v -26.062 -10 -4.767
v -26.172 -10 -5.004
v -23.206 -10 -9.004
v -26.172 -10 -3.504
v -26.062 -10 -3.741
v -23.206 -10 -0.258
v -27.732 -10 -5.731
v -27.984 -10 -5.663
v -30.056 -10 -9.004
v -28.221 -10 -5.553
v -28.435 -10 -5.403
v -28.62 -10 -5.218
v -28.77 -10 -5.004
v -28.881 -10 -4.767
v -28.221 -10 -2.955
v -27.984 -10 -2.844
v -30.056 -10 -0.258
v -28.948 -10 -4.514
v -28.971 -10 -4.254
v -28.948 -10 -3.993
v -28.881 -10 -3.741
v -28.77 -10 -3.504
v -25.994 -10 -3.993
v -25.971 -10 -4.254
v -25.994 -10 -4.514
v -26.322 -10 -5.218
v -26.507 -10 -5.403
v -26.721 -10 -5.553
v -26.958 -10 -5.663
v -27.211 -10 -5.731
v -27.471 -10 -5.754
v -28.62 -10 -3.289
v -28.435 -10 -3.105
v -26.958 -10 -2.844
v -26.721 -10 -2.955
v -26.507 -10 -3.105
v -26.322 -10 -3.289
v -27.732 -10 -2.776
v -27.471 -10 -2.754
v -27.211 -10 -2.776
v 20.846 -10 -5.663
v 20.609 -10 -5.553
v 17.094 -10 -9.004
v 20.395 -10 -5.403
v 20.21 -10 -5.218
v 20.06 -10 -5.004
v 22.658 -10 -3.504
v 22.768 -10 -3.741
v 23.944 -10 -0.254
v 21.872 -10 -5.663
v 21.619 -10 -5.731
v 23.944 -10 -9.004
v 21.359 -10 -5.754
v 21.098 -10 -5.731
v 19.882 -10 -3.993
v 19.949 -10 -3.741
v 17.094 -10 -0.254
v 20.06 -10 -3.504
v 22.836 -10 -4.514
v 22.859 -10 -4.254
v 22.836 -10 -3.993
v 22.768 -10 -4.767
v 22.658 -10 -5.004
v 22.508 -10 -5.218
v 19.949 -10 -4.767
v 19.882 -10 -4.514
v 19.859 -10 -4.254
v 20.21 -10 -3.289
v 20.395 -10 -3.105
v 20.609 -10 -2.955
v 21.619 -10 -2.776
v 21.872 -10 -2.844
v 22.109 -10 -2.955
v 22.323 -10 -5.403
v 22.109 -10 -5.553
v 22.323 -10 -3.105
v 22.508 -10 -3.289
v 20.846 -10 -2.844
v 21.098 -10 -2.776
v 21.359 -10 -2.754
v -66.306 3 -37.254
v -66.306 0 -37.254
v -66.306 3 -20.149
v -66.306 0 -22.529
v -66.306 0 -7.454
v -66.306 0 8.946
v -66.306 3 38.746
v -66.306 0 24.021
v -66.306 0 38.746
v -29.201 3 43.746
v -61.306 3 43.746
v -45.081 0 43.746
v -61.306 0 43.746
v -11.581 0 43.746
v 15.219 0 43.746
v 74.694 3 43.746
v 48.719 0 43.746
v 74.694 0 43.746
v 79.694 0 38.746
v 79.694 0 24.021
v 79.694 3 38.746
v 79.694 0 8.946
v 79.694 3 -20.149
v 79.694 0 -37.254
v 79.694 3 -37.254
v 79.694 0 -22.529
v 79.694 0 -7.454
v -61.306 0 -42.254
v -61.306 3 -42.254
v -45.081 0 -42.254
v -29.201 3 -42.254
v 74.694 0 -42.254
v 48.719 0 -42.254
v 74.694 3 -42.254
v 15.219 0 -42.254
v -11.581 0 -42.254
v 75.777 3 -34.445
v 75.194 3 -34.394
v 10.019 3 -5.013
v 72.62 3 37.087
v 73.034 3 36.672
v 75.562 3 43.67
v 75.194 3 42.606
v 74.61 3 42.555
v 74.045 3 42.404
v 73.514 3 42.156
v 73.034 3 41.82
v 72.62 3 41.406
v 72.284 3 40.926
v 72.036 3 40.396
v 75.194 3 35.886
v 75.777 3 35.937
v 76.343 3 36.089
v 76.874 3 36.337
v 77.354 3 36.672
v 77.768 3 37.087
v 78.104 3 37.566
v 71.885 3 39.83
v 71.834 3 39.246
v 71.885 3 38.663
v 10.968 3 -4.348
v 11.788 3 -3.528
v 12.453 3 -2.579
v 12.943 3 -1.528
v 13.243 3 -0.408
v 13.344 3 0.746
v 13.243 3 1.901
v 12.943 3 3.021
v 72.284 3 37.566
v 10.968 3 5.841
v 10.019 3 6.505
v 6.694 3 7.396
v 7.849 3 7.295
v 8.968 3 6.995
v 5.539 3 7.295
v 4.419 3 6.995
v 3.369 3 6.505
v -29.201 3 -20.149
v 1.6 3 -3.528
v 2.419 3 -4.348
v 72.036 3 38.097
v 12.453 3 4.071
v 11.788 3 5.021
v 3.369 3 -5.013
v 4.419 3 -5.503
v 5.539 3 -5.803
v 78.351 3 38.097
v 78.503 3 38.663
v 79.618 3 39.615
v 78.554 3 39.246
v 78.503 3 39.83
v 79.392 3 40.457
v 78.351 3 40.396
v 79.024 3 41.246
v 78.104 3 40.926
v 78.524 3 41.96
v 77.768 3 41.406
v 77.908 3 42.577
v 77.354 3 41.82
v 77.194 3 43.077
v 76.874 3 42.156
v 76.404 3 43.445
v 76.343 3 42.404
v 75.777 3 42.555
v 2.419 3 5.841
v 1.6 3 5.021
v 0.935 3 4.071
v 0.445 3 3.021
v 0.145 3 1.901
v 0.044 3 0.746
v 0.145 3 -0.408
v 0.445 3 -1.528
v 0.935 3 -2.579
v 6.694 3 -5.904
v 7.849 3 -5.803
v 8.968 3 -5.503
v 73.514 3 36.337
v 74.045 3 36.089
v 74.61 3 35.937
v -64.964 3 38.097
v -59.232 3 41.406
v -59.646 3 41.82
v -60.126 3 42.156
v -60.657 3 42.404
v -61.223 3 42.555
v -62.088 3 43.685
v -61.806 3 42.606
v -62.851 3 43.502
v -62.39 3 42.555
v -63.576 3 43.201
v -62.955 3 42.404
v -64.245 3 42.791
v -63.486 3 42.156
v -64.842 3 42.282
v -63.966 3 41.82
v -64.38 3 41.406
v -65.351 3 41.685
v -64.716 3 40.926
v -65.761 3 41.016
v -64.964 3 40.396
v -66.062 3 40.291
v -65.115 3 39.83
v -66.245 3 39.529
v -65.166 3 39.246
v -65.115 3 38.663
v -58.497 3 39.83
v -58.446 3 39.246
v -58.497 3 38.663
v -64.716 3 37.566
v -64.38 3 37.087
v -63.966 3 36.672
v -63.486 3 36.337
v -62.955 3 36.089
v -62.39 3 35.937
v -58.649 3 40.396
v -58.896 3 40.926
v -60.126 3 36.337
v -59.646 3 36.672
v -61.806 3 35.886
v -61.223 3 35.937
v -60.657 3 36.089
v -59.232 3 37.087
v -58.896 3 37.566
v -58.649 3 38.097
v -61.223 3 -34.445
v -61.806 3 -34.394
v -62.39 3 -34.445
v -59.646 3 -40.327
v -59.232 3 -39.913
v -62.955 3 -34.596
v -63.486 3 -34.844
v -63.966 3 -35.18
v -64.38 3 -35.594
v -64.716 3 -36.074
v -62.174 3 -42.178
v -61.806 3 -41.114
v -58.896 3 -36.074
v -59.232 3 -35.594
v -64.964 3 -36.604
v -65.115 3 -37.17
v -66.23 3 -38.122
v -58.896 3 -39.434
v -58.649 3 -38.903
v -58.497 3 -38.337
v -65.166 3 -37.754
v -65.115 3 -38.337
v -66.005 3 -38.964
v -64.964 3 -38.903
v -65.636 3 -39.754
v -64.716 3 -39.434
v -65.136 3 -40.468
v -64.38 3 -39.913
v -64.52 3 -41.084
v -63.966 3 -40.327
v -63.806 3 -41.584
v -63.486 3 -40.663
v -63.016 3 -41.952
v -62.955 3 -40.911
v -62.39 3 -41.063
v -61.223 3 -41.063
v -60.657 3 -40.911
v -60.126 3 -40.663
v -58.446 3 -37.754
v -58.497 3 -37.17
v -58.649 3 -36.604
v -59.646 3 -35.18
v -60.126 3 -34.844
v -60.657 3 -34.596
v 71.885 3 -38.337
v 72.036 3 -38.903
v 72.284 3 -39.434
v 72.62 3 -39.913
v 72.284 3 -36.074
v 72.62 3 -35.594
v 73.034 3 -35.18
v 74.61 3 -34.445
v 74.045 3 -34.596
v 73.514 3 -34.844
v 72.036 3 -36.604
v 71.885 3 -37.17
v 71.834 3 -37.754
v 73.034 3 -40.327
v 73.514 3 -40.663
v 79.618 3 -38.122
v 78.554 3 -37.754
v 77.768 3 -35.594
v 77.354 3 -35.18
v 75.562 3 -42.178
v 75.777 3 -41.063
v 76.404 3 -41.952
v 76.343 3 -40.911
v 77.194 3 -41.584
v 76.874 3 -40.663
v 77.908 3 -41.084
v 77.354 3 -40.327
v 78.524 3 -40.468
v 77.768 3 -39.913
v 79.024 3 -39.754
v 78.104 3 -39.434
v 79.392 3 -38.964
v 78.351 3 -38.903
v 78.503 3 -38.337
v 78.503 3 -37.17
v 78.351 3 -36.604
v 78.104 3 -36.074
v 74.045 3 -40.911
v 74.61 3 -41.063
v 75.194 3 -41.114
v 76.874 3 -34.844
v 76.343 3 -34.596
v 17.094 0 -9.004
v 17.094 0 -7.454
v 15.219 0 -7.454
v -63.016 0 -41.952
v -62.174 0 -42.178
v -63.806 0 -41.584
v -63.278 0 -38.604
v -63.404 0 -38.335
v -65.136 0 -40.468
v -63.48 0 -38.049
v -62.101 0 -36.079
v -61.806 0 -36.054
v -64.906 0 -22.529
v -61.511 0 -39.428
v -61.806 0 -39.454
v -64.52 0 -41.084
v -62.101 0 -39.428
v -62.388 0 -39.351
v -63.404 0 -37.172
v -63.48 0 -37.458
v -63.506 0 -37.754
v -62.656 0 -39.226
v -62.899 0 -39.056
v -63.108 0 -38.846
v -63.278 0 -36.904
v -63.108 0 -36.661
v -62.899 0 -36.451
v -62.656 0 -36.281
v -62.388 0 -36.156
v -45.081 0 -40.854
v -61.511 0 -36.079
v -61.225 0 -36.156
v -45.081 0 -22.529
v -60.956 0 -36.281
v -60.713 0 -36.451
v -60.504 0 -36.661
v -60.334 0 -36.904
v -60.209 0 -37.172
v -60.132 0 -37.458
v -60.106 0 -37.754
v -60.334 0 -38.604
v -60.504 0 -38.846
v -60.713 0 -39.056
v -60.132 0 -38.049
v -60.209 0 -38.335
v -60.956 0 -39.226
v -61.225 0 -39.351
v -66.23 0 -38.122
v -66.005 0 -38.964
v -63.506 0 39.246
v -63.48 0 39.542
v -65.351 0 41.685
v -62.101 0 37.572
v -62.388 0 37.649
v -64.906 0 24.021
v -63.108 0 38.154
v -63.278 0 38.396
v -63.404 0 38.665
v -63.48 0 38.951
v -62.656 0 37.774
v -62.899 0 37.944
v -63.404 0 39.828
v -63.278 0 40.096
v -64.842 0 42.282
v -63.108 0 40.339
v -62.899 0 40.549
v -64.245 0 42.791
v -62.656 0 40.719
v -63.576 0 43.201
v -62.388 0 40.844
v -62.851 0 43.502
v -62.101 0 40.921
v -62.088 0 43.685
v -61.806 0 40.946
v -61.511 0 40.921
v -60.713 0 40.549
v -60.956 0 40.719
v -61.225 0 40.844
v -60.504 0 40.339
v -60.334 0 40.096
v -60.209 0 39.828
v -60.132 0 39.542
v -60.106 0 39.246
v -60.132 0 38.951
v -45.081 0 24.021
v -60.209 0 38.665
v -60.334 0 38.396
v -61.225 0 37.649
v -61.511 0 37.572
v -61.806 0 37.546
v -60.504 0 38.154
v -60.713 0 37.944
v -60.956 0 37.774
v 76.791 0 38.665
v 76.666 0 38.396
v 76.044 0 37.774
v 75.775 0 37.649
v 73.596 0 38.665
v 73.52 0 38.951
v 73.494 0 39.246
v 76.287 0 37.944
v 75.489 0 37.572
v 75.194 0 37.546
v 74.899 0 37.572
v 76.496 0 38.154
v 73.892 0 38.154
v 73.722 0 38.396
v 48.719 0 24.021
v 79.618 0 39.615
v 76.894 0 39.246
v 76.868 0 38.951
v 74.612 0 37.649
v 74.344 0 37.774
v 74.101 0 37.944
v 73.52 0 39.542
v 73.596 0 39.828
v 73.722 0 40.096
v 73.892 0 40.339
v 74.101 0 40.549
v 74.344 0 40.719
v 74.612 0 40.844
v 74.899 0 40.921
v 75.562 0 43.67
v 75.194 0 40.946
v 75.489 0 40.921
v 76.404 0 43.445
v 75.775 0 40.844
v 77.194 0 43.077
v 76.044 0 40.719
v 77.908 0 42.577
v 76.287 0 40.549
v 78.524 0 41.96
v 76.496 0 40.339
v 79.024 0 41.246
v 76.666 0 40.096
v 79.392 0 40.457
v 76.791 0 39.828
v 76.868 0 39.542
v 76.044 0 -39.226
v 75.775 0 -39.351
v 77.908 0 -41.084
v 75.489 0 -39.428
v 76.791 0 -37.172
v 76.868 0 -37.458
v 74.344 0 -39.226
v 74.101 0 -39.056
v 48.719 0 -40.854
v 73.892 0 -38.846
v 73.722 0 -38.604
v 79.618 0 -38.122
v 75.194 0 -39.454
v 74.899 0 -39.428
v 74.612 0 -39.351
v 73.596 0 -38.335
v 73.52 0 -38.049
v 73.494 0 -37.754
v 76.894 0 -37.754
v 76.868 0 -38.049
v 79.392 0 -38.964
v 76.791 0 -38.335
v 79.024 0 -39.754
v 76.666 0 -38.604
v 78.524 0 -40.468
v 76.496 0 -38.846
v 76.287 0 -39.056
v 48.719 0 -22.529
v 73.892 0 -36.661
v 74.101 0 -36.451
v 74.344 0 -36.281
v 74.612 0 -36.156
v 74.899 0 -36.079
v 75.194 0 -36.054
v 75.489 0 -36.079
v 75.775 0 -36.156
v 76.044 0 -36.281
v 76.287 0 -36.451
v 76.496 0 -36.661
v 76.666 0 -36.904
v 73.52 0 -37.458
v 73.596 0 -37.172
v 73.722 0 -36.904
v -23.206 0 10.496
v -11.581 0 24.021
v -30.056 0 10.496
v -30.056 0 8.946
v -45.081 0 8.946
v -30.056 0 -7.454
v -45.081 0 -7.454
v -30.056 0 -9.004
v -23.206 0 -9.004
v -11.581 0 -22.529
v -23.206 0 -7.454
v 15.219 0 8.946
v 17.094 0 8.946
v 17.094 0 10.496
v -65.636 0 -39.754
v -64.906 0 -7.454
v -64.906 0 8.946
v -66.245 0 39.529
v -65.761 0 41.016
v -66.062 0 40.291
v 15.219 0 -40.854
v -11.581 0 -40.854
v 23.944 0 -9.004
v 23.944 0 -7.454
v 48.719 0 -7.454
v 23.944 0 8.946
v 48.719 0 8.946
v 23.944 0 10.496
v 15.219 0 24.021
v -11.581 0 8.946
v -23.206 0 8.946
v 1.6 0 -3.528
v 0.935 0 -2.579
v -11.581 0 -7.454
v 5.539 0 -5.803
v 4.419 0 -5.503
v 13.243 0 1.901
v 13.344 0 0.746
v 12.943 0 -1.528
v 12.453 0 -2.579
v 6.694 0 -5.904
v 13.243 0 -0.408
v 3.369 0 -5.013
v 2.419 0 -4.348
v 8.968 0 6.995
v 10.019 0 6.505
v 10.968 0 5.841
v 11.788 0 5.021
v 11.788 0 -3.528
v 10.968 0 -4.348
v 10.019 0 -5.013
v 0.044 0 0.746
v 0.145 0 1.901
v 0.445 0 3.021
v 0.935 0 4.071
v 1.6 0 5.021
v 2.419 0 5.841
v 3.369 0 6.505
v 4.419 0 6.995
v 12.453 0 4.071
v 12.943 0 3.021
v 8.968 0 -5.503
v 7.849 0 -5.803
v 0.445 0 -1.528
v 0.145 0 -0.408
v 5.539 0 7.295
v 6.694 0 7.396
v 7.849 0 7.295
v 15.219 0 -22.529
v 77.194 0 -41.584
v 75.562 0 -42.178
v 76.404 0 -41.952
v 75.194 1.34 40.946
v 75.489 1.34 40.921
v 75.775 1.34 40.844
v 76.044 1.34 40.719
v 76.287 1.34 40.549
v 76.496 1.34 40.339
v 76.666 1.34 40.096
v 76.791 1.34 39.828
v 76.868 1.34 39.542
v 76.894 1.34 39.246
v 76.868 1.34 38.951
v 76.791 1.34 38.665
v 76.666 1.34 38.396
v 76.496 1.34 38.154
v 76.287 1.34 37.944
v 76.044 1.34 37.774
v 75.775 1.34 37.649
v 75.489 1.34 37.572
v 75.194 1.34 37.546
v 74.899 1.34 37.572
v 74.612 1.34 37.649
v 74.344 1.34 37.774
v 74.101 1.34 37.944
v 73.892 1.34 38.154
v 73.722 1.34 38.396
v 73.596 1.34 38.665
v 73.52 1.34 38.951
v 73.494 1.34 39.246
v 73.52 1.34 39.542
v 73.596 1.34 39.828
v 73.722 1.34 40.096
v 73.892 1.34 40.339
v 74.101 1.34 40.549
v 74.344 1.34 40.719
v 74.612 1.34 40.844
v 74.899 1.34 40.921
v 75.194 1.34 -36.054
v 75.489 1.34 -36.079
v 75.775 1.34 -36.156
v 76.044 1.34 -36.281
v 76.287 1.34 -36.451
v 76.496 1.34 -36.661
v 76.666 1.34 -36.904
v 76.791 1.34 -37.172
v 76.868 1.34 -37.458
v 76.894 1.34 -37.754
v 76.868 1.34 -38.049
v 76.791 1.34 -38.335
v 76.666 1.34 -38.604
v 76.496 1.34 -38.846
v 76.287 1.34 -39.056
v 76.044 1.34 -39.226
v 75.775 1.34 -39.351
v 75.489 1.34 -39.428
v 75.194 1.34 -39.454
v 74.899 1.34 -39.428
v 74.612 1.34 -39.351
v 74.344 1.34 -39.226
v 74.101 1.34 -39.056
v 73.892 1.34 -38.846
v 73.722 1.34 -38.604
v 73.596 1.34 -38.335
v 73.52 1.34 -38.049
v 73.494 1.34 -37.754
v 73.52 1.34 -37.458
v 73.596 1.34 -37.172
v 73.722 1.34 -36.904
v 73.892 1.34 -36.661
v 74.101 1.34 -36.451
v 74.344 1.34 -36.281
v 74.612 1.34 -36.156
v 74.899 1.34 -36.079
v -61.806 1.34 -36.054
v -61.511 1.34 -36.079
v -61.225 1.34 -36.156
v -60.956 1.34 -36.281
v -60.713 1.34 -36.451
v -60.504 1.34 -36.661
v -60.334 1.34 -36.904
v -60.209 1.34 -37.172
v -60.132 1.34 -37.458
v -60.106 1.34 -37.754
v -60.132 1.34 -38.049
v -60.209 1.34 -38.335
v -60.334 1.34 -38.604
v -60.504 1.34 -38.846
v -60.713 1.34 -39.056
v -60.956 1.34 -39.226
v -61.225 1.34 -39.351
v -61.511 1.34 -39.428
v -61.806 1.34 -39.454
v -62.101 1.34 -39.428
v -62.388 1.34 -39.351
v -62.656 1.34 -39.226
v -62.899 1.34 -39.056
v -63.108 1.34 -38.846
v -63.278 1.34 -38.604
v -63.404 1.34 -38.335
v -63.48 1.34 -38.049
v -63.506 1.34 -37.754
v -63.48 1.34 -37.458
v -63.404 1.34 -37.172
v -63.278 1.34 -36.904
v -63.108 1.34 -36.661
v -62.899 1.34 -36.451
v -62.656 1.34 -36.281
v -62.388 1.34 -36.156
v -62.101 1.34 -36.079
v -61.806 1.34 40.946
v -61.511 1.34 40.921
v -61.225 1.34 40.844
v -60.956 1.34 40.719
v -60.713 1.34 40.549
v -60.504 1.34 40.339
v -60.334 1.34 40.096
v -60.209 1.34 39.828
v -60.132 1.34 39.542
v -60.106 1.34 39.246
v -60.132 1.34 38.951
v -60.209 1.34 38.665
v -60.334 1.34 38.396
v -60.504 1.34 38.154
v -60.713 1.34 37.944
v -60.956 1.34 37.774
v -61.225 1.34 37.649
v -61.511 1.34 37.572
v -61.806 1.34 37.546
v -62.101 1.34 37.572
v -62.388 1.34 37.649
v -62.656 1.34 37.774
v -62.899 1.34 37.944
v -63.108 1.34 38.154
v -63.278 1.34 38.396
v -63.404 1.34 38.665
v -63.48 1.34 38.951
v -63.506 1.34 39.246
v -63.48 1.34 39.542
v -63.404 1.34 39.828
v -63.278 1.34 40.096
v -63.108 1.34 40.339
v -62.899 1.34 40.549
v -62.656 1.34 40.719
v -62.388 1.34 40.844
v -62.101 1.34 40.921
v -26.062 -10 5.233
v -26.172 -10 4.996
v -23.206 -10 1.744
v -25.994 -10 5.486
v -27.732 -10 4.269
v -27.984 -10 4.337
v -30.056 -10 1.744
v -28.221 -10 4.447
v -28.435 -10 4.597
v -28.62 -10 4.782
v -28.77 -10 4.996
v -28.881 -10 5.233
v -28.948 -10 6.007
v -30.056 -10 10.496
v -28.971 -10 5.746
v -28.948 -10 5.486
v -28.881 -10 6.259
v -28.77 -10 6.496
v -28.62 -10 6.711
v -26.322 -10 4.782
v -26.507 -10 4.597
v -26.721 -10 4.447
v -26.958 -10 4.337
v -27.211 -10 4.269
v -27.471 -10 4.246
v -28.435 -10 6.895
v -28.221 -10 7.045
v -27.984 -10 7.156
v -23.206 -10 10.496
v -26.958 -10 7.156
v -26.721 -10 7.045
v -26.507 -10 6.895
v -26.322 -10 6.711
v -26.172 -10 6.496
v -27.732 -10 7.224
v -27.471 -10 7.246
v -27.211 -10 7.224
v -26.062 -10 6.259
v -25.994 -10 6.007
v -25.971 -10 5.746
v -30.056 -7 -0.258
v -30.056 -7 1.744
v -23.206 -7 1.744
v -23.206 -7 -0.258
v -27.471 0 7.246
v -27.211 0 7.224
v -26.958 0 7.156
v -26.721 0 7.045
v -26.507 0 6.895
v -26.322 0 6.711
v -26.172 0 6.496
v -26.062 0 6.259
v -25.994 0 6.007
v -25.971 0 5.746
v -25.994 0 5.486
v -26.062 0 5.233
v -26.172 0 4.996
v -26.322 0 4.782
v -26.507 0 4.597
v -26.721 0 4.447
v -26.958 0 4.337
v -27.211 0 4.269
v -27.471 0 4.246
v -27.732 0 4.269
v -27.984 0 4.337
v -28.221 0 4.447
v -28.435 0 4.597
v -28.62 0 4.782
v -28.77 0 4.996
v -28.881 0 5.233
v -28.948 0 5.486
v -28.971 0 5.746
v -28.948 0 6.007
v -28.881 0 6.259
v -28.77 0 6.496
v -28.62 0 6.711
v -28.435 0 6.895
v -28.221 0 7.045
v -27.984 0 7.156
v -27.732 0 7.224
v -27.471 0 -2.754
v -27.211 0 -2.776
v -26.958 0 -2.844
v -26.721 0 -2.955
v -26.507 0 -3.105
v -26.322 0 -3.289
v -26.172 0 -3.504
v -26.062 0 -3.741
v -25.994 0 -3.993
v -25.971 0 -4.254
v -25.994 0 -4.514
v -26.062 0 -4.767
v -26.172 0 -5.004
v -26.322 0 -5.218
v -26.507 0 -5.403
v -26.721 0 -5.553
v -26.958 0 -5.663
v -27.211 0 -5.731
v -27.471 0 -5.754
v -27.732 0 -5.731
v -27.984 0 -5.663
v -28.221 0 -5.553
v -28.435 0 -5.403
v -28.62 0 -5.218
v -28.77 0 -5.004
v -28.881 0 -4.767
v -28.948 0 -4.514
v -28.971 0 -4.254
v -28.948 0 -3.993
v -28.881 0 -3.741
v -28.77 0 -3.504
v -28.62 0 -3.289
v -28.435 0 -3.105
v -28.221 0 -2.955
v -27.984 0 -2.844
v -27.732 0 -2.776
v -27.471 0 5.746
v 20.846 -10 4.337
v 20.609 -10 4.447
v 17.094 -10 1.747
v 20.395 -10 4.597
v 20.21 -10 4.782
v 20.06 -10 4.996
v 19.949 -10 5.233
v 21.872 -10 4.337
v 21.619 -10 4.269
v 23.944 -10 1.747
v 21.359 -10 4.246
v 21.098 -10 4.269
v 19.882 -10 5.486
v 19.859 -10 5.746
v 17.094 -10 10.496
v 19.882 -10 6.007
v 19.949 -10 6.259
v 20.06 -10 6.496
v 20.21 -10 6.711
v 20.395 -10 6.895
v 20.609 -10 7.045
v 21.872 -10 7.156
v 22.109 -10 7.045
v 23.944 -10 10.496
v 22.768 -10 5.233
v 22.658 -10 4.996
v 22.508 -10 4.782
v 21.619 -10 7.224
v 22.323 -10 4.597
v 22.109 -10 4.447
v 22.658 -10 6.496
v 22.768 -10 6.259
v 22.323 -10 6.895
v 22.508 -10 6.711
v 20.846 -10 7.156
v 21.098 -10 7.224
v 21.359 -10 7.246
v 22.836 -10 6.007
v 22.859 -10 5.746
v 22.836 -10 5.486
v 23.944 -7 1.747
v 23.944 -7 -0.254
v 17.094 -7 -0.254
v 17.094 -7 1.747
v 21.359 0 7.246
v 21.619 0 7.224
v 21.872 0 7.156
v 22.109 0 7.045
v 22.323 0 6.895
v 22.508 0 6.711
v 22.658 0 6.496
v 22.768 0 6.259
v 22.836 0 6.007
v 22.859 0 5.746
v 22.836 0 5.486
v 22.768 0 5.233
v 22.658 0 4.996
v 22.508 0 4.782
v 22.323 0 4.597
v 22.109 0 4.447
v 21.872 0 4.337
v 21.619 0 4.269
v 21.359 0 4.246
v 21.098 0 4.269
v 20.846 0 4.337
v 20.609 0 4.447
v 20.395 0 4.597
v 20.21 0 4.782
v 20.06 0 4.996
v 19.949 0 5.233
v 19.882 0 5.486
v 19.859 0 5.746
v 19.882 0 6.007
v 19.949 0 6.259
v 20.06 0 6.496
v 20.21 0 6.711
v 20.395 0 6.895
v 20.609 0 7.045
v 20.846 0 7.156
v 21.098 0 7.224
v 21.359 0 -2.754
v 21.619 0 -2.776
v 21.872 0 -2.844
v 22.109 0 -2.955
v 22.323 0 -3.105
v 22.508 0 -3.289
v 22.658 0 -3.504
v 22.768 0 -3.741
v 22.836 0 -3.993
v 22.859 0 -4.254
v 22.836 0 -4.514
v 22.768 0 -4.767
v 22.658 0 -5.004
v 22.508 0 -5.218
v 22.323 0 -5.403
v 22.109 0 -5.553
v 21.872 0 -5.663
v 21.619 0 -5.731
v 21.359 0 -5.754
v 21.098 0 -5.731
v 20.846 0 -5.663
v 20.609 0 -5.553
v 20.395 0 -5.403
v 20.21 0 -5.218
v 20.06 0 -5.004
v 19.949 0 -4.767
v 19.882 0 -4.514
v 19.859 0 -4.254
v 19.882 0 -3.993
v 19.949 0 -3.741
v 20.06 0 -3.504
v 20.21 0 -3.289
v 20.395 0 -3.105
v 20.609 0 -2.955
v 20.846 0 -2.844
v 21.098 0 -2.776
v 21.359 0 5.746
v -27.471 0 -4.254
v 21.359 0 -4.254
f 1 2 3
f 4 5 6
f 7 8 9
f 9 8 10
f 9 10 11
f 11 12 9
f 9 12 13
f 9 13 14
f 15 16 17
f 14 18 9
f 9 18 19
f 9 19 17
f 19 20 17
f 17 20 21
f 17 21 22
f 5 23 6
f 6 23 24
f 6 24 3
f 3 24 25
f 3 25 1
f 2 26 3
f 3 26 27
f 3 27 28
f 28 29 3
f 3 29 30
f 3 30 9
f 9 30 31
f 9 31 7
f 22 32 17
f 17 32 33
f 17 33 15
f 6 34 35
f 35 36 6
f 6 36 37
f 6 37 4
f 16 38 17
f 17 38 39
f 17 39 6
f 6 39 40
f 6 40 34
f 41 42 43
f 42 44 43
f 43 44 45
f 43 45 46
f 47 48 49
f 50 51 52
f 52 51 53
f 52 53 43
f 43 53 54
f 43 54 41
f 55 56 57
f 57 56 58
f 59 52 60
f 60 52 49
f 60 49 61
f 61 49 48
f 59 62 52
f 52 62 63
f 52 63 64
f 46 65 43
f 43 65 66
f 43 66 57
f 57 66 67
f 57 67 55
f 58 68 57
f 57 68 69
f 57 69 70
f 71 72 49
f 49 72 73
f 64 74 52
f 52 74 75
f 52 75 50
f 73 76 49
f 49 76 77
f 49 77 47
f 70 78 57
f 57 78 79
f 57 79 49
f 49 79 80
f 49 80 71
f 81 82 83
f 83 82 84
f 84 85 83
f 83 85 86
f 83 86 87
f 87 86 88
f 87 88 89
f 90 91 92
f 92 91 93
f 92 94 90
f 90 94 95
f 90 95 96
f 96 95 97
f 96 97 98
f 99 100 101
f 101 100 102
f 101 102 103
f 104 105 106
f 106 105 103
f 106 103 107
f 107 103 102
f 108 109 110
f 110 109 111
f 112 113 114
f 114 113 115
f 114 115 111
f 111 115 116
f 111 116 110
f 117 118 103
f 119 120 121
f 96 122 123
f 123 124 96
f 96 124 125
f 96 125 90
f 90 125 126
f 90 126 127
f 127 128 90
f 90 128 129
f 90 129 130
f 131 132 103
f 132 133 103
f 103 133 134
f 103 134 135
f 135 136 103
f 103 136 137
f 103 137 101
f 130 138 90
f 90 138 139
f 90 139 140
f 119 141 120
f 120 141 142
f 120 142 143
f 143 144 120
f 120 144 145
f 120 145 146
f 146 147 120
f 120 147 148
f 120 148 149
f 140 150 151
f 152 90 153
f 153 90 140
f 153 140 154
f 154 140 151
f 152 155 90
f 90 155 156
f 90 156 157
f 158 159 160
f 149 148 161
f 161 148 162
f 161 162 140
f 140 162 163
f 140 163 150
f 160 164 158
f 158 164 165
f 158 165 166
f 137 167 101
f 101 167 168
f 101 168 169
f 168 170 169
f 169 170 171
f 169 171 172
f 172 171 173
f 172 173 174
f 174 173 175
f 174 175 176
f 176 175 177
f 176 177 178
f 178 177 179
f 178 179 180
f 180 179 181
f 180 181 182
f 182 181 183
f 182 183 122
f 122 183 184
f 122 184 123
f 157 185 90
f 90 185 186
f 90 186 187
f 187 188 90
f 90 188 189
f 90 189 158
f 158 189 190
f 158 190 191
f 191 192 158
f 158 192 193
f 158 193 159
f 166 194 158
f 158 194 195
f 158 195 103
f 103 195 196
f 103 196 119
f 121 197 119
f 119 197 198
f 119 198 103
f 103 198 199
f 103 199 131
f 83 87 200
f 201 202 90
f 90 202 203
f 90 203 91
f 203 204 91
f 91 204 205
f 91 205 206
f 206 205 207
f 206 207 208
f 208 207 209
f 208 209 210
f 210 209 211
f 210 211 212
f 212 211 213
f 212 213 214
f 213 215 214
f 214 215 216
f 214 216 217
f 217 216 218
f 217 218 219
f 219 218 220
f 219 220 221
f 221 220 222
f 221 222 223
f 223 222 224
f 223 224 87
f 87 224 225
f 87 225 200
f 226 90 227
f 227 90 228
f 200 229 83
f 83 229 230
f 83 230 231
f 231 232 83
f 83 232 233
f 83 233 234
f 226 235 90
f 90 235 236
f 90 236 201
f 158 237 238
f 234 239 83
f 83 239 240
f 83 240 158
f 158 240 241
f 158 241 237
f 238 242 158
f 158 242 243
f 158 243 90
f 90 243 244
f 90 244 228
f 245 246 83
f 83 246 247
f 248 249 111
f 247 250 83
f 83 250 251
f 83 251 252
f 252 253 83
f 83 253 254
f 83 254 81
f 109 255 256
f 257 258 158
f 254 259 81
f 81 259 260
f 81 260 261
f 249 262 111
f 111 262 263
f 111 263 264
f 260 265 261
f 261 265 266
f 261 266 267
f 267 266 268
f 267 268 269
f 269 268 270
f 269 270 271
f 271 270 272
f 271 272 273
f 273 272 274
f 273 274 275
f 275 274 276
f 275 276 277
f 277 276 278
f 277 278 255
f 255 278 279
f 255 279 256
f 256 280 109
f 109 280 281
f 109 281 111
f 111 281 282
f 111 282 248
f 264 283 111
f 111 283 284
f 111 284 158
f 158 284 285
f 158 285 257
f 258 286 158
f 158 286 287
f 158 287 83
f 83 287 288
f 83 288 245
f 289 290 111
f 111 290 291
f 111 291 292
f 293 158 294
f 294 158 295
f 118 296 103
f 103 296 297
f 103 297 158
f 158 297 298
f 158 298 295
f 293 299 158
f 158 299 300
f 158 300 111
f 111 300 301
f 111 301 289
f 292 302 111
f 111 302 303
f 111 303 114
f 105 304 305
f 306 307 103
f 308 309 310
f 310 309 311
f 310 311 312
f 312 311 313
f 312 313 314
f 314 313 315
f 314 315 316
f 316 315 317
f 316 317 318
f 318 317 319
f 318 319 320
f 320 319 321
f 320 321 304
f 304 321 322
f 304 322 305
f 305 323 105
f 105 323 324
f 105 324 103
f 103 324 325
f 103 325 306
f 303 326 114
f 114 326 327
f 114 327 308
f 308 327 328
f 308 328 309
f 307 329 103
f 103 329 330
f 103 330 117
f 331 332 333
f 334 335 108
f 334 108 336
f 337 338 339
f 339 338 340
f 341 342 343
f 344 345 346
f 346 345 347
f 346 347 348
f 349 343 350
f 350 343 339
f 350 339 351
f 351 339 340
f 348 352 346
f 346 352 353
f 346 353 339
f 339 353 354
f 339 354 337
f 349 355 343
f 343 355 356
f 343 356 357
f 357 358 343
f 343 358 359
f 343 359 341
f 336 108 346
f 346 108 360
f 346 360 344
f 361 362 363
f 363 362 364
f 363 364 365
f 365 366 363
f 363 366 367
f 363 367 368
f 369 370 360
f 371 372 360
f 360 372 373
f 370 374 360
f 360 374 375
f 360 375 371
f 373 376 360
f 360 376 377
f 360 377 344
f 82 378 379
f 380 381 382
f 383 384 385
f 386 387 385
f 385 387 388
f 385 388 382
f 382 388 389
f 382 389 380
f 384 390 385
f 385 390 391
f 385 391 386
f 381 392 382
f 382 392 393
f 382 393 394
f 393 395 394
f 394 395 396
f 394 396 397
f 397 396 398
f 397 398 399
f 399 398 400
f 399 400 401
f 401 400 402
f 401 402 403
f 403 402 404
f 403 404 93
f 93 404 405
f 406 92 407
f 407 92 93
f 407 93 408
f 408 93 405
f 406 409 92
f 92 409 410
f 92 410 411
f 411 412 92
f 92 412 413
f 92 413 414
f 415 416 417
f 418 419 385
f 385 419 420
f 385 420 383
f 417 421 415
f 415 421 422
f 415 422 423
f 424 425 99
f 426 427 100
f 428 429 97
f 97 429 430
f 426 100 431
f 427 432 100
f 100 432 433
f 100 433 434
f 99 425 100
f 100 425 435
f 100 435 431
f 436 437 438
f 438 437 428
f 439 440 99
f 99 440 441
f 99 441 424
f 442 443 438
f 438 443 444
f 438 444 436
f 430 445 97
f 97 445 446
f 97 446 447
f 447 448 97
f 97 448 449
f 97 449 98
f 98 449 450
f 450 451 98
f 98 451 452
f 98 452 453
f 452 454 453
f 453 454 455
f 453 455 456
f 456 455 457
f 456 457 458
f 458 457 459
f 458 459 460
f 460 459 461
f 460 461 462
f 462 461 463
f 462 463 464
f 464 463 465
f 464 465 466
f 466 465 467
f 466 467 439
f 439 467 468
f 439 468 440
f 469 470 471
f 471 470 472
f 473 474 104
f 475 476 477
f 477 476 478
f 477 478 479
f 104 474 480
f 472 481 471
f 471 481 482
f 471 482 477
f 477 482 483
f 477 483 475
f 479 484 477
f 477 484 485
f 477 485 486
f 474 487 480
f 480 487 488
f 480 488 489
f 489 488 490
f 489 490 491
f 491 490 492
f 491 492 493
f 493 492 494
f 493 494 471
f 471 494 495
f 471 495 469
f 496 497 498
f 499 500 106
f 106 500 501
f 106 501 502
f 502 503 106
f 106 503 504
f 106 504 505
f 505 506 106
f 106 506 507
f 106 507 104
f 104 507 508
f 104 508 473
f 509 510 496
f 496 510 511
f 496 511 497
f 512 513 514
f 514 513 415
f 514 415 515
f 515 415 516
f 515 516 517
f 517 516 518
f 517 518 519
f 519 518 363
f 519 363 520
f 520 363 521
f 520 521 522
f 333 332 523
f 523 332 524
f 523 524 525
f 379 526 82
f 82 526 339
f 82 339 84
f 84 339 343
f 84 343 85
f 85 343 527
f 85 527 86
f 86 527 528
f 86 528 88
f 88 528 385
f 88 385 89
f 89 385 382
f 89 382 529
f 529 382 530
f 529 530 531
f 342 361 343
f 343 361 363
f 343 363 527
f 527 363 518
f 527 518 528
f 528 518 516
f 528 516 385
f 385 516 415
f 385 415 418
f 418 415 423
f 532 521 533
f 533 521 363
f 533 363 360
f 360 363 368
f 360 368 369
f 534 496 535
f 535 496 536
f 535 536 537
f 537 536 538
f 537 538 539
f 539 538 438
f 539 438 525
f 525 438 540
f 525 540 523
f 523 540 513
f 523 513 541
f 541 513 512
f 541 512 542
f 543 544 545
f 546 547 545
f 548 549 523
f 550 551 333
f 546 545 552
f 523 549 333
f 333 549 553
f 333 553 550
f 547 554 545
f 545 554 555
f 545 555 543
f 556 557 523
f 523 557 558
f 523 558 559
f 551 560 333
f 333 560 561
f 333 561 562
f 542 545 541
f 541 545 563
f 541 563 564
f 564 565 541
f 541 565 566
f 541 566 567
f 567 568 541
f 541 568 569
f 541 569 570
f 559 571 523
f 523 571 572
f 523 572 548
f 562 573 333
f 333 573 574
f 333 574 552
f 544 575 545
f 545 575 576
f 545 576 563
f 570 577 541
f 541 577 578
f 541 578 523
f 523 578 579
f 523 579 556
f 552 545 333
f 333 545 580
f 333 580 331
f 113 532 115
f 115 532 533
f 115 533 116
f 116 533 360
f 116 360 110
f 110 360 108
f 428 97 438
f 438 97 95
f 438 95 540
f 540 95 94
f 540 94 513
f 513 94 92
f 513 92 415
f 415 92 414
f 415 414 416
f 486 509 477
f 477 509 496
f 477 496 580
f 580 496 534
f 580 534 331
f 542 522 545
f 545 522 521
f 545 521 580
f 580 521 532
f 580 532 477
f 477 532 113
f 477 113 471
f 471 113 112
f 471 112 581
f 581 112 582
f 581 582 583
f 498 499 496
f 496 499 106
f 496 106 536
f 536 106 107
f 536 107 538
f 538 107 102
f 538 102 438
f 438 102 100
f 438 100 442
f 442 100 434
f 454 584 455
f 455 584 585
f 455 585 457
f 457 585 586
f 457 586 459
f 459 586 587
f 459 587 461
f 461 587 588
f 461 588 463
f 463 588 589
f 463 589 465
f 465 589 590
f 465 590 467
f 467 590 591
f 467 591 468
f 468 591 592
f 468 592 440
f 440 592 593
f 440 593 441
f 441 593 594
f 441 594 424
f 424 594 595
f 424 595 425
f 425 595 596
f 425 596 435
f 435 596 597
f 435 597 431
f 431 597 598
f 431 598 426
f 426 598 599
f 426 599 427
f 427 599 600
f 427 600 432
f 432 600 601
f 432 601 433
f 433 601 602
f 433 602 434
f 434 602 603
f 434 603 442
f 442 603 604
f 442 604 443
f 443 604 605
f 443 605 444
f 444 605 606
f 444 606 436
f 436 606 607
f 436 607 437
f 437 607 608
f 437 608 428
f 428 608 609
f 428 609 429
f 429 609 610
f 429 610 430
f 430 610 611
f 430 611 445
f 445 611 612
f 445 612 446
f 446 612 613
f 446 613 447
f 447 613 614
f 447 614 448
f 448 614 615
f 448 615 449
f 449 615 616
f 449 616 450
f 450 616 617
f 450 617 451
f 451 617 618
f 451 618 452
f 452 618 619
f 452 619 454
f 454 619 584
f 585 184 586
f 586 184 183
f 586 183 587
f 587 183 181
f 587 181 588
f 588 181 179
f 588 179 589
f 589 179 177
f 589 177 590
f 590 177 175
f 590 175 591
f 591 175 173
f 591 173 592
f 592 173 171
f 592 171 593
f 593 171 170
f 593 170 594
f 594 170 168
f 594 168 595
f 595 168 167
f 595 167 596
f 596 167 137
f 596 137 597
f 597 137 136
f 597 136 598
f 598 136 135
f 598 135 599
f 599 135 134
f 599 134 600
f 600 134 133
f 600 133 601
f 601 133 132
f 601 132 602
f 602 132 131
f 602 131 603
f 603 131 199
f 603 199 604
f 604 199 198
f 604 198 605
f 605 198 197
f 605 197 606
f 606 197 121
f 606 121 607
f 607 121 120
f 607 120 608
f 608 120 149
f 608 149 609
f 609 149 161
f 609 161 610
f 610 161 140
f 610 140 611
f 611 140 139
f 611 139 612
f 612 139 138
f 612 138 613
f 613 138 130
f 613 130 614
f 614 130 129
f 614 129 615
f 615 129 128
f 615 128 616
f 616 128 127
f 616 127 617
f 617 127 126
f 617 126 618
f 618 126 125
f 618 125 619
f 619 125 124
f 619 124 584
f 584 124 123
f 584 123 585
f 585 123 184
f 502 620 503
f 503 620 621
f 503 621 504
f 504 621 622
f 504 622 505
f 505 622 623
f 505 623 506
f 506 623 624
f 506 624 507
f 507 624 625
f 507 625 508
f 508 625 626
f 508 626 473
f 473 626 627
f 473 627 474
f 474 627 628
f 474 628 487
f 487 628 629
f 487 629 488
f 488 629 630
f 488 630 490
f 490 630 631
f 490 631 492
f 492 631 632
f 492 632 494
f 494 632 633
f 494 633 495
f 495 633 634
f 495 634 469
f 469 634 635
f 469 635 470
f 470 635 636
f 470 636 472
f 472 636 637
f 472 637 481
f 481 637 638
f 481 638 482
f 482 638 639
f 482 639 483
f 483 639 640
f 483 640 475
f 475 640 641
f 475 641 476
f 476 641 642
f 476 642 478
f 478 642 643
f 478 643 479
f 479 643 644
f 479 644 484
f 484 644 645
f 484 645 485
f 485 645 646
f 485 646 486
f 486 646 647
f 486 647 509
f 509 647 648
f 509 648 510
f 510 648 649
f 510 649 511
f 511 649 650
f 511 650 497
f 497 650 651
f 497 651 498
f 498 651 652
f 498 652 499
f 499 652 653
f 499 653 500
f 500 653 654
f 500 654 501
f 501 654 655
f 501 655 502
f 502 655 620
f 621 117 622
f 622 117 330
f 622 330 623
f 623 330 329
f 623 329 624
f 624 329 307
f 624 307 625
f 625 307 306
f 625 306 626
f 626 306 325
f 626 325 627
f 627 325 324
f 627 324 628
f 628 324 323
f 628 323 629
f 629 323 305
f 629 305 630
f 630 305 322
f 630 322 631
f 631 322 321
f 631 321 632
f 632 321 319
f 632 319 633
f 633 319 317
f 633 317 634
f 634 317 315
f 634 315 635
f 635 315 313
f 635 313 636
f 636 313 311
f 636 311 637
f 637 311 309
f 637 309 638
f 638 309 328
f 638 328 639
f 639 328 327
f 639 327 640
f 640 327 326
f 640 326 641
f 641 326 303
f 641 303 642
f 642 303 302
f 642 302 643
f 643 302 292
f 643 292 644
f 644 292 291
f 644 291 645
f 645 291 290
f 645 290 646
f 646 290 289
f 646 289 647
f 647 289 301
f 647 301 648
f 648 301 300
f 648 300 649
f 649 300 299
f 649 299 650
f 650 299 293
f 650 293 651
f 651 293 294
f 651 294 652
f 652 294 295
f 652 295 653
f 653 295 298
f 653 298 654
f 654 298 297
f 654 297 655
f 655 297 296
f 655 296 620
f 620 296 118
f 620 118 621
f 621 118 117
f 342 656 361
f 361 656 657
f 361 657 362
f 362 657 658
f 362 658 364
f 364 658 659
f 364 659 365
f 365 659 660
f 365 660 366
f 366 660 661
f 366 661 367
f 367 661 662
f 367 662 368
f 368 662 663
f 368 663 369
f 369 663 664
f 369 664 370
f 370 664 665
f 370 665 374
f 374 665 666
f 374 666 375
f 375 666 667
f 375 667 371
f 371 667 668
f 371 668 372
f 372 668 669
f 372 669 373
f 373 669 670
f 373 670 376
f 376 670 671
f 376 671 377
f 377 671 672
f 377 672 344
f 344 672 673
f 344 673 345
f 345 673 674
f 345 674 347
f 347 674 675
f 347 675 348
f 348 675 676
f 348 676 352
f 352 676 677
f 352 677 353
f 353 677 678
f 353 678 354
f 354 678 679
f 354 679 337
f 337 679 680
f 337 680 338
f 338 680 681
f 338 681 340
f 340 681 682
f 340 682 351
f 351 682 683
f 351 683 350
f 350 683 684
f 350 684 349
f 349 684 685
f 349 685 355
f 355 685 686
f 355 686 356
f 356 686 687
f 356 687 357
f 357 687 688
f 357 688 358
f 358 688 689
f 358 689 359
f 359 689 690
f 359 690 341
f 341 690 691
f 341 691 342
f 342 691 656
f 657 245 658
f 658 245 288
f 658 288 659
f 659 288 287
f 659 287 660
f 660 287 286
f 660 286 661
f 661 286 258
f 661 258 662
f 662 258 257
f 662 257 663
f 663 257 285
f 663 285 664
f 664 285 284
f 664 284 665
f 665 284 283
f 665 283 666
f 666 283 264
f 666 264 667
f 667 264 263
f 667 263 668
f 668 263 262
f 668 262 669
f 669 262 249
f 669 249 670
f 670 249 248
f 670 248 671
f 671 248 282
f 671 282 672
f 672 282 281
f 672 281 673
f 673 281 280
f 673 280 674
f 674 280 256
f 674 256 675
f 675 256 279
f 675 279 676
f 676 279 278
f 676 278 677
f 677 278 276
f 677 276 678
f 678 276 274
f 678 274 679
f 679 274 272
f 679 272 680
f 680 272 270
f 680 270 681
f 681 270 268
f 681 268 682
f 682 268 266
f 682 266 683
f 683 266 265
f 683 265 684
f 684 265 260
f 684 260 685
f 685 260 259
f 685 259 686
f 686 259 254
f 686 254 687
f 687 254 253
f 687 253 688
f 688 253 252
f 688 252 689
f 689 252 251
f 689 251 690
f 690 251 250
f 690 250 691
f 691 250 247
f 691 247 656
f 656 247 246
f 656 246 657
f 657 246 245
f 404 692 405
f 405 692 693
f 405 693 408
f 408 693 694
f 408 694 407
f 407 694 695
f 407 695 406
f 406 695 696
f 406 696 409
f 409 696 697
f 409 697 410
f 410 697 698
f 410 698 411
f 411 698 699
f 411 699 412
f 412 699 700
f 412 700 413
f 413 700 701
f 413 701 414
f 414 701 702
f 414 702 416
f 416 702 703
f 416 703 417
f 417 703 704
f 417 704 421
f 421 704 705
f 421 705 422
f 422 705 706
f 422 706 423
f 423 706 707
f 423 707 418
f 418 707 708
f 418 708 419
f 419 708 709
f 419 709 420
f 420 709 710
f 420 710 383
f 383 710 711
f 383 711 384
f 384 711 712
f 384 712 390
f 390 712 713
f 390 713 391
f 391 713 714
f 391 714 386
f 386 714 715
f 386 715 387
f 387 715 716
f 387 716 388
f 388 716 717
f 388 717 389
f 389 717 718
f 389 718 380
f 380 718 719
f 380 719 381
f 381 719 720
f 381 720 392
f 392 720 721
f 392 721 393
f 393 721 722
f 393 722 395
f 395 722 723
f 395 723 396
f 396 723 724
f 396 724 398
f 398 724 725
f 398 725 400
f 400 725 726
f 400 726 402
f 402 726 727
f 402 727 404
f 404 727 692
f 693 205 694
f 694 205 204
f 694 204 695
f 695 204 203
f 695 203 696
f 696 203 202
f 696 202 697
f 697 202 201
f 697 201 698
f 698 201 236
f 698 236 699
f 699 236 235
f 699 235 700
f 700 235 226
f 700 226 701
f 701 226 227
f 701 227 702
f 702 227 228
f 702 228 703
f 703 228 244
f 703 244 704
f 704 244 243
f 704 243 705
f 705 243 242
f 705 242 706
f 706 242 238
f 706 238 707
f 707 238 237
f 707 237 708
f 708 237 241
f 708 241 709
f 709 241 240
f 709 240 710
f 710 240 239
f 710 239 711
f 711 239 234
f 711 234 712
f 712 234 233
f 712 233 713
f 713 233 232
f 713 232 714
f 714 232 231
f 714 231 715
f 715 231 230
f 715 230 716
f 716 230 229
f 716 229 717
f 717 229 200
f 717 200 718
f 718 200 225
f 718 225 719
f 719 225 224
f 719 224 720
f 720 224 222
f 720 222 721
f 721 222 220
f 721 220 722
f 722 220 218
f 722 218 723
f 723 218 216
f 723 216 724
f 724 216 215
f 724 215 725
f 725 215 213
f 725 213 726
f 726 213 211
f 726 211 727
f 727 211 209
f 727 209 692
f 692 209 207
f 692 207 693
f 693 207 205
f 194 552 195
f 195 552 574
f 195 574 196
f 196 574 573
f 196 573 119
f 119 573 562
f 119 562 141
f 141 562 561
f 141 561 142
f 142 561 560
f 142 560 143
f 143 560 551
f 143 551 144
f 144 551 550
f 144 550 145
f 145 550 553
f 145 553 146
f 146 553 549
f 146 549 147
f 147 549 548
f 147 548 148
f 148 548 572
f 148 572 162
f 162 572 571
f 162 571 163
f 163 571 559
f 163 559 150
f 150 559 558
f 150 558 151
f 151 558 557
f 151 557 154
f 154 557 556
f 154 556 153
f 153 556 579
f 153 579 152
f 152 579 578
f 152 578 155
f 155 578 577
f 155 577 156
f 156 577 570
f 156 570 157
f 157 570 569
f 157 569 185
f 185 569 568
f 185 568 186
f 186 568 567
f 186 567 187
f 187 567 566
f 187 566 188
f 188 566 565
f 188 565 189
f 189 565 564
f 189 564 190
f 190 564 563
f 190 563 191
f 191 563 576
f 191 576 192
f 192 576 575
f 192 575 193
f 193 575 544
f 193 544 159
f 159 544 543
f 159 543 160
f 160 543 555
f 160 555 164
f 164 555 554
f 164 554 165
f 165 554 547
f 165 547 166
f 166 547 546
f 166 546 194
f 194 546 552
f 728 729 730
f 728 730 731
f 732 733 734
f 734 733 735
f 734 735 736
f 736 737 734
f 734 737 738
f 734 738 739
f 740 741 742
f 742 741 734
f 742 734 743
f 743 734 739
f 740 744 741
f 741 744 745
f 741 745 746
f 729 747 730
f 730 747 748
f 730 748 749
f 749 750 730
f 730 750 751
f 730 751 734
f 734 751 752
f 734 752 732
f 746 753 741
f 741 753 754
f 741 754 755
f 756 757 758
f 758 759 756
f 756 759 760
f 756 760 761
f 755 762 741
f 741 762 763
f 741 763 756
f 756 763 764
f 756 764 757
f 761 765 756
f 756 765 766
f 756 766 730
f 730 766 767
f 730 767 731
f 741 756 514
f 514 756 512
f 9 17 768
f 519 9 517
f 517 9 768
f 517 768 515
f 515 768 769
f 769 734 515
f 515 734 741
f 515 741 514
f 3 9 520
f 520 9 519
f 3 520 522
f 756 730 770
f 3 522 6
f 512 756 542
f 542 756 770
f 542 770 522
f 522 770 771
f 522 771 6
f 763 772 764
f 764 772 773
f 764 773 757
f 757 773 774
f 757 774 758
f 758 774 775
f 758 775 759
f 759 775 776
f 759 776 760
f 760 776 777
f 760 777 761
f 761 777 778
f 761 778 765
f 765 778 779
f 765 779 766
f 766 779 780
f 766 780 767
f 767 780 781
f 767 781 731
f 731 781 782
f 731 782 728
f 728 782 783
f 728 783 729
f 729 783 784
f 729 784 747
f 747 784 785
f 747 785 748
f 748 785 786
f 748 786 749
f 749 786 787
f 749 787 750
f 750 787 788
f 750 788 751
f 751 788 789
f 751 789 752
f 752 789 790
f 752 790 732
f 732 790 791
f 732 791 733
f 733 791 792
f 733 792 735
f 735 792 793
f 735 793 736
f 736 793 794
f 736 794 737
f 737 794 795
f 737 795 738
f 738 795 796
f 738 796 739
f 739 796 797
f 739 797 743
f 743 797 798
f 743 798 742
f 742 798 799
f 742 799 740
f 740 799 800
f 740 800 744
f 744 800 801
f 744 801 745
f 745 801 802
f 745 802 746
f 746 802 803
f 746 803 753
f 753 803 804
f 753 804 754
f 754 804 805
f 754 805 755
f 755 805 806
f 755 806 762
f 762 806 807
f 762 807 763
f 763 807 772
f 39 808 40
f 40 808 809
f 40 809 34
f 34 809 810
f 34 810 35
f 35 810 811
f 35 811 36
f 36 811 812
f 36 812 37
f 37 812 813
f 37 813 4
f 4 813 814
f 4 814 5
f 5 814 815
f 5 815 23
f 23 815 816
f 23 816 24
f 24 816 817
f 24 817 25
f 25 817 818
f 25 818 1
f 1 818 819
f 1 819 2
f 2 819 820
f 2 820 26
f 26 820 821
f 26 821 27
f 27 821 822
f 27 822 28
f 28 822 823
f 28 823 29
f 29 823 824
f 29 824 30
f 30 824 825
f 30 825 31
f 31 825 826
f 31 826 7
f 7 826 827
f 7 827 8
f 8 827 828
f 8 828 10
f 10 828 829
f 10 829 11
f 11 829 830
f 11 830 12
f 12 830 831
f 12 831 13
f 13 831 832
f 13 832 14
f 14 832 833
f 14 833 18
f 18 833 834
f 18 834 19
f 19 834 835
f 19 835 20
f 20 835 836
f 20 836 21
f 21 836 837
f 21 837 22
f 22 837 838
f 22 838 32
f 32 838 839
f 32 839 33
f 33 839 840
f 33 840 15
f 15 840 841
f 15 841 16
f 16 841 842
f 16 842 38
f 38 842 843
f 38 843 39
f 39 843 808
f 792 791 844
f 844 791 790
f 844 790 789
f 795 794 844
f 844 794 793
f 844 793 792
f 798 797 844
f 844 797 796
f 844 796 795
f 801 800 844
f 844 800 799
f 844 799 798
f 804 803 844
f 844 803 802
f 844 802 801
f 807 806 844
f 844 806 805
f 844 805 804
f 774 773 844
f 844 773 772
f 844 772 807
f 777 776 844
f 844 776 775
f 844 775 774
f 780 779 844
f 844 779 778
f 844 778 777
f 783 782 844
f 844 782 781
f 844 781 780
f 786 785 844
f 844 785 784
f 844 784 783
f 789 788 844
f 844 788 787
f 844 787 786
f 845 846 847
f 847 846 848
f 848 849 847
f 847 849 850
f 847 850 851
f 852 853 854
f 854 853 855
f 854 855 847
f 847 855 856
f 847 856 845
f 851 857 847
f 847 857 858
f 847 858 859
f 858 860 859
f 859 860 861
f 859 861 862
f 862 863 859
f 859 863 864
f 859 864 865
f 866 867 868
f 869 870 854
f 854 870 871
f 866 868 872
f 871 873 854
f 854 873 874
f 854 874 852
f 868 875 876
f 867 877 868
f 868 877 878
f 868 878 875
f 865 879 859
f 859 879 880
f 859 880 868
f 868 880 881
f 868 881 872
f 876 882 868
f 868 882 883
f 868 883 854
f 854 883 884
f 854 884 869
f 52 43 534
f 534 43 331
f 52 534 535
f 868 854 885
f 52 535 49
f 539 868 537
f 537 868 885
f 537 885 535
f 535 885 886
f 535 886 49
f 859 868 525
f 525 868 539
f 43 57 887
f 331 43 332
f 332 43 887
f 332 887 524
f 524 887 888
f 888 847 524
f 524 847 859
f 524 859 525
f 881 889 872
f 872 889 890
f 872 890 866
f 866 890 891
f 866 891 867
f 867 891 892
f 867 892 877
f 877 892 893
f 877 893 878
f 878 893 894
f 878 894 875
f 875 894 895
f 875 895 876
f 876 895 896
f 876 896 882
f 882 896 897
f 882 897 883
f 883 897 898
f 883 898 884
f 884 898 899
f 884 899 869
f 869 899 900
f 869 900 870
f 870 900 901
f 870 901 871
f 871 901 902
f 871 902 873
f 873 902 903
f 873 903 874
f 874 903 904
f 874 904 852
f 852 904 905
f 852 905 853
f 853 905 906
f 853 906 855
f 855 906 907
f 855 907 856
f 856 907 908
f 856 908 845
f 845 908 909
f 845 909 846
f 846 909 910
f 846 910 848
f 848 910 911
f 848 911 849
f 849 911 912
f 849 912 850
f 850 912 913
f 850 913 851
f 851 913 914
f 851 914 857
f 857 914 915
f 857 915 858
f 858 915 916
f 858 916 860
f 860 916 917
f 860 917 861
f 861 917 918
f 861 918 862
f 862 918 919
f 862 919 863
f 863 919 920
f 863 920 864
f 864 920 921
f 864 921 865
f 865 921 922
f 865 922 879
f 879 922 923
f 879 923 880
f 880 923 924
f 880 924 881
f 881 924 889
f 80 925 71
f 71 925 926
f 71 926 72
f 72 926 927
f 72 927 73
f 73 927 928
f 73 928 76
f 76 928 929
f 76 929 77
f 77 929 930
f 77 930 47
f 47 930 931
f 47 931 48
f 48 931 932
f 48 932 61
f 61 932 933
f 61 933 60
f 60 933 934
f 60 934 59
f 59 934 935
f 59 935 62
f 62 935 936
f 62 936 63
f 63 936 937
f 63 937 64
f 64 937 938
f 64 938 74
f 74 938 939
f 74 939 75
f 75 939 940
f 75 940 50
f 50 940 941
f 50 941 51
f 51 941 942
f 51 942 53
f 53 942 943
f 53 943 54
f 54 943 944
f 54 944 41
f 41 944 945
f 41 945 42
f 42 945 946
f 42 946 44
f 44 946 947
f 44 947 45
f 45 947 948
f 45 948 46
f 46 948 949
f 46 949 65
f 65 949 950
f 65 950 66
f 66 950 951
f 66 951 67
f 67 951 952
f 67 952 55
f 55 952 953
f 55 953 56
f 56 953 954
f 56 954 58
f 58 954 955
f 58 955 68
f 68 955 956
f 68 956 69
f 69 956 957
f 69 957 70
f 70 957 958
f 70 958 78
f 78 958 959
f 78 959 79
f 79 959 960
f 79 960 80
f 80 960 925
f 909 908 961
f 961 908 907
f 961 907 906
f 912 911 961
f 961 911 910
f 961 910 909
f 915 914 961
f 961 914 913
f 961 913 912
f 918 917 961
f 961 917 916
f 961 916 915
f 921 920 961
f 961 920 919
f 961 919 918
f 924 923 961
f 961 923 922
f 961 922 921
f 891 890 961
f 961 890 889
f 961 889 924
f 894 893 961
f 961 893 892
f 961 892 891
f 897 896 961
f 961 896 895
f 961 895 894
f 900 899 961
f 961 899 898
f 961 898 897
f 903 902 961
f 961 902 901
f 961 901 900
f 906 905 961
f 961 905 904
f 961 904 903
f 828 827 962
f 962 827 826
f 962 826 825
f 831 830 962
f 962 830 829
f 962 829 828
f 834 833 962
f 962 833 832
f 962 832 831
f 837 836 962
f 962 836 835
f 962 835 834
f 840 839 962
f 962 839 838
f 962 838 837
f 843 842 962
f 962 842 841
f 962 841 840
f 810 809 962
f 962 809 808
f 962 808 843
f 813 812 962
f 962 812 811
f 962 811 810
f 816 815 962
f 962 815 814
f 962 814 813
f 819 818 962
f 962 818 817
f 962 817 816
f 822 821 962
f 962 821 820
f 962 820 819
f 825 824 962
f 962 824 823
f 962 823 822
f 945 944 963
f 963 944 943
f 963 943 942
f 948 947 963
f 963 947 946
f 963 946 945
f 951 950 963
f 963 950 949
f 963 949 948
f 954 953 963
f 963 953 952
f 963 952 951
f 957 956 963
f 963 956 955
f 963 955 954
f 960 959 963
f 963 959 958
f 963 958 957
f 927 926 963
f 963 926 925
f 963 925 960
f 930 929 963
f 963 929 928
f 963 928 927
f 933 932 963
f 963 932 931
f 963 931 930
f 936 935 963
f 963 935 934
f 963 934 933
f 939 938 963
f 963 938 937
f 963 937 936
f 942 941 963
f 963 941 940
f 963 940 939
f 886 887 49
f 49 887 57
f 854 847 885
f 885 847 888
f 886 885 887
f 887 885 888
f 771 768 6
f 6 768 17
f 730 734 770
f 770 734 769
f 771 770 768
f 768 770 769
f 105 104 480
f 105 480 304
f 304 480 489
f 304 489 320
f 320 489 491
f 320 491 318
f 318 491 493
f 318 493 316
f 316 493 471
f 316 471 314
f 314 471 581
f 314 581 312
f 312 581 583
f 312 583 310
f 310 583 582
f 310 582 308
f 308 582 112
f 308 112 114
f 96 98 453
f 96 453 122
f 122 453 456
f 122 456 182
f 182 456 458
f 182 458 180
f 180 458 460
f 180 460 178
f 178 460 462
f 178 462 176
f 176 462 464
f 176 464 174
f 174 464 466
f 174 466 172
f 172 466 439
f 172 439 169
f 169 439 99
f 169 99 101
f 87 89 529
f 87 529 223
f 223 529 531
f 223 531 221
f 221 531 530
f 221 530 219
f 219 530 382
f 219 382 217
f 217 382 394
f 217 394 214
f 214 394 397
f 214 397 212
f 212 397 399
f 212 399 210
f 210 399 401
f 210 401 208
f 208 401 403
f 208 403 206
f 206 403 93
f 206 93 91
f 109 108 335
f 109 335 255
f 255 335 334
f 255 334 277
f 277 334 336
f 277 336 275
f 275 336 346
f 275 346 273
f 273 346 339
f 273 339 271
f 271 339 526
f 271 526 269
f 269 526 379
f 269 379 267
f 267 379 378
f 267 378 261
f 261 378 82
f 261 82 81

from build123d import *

# Parameters (mm, degrees)
SKETCH1_W                    = 146
SKETCH1_H                    = 86
BOSS_EXTRUDE1_DEPTH          = 3
CSK_FOR_M3_SFHCS1_AT_2_COUNT = 2
CSK_FOR_M3_SFHCS1_AT_2_PITCH = 77
CSK_FOR_M3_SFHCS1_AT_3_COUNT = 2
CSK_FOR_M3_SFHCS1_AT_3_PITCH = 157.155973479
CSK_FOR_M3_SFHCS1_AT_4_COUNT = 2
CSK_FOR_M3_SFHCS1_AT_4_PITCH = 137
SKETCH5_R                    = 6.65
CUT_EXTRUDE1_DEPTH           = 14
SKETCH6_W                    = 6.85
SKETCH6_H                    = 19.5
SKETCH6_R                    = 1.5
BOSS_EXTRUDE2_DEPTH          = 10
SKETCH7_W                    = 7.05
SKETCH7_H                    = 2.001587211
SKETCH7_H_2                  = 2.00158721
CUT_EXTRUDE2_DEPTH           = 3
FILLET1_R                    = 5


with BuildPart() as part:
    # Sketch1 → Boss-Extrude1 (new body)
    with BuildSketch(Plane(origin=(0, 0, 0), x_dir=(1, 0, 0), z_dir=(0, 1, 0))):
        with Locations((6.693779904, -0.746411483)):
            Rectangle(SKETCH1_W, SKETCH1_H)
    extrude(amount=BOSS_EXTRUDE1_DEPTH)

    # Sketch3 → CSK for M3 SFHCS1 (revolve, cut)
    with BuildSketch(Plane(origin=(-61.806220096, 3, 39.246411483), x_dir=(0, 0, 1), z_dir=(1, 0, 0))):
        Polygon((0, 0), (0, 3), (1.7, 3), (1.7, 1.66), (3.36, 0), align=None)
    csk_for_m3_sfhcs1 = revolve(axis=Axis((-61.806220096, 9.35, 39.246411483), (0, -1, 0)), mode=Mode.SUBTRACT)

    # CSK for M3 SFHCS1 at 2: CSK for M3 SFHCS1 ×2
    with Locations(*[(0, 0, -i * CSK_FOR_M3_SFHCS1_AT_2_PITCH) for i in range(1, CSK_FOR_M3_SFHCS1_AT_2_COUNT)]):
        add(csk_for_m3_sfhcs1, mode=Mode.SUBTRACT)

    # CSK for M3 SFHCS1 at 3: CSK for M3 SFHCS1 ×2
    with Locations(*[Vector(0.8717454193280995, 0, -0.48995910429389533) * (i * CSK_FOR_M3_SFHCS1_AT_3_PITCH) for i in range(1, CSK_FOR_M3_SFHCS1_AT_3_COUNT)]):
        add(csk_for_m3_sfhcs1, mode=Mode.SUBTRACT)

    # CSK for M3 SFHCS1 at 4: CSK for M3 SFHCS1 ×2
    with Locations(*[(i * CSK_FOR_M3_SFHCS1_AT_4_PITCH, 0, 0) for i in range(1, CSK_FOR_M3_SFHCS1_AT_4_COUNT)]):
        add(csk_for_m3_sfhcs1, mode=Mode.SUBTRACT)

    # Sketch5 → Cut-Extrude1 (cut)
    with BuildSketch(Plane.XZ):
        with Locations(Location((6.693779904, 0.746411483, 0), (0, 0, 270))):
            Circle(SKETCH5_R)
    extrude(amount=-CUT_EXTRUDE1_DEPTH, mode=Mode.SUBTRACT)

    # Sketch6 → Boss-Extrude2 (add)
    # profile 1 of 2: a face of its own
    with BuildSketch(Plane.XZ):
        with Locations((-26.631220096, 0.746411483)):
            Rectangle(SKETCH6_W, SKETCH6_H)
        with Locations(Location((-27.471220096, 5.746411483, 0), (0, 0, 270))):
            Circle(SKETCH6_R, mode=Mode.SUBTRACT)
        with Locations(Location((-27.471220096, -4.253588517, 0), (0, 0, 270))):
            Circle(SKETCH6_R, mode=Mode.SUBTRACT)
    # profile 2 of 2: a face of its own
    with BuildSketch(Plane.XZ):
        with Locations((20.518779904, 0.746411483)):
            Rectangle(SKETCH6_W, SKETCH6_H)
        with Locations(Location((21.358779904, 5.746411483, 0), (0, 0, 270))):
            Circle(SKETCH6_R, mode=Mode.SUBTRACT)
        with Locations(Location((21.358779904, -4.253588517, 0), (0, 0, 270))):
            Circle(SKETCH6_R, mode=Mode.SUBTRACT)
    extrude(amount=BOSS_EXTRUDE2_DEPTH)

    # Sketch7 → Cut-Extrude2 (cut)
    with BuildSketch(Plane.XZ.offset(10)):
        with Locations((-26.731220096, 0.742822967)):
            Rectangle(SKETCH7_W, SKETCH7_H)
        with Locations((20.418779904, 0.746411483)):
            Rectangle(SKETCH7_W, SKETCH7_H_2)
    extrude(amount=-CUT_EXTRUDE2_DEPTH, mode=Mode.SUBTRACT)

    # Fillet1
    fillet1_edges = [part.edges().sort_by_distance(p)[0] for p in [
        (-66.306220096, 1.5, -42.253588517),
        (79.693779904, 1.5, -42.253588517),
        (79.693779904, 1.5, 43.746411483),
        (-66.306220096, 1.5, 43.746411483),
    ]]
    fillet(fillet1_edges, radius=FILLET1_R)


solid = part.part
